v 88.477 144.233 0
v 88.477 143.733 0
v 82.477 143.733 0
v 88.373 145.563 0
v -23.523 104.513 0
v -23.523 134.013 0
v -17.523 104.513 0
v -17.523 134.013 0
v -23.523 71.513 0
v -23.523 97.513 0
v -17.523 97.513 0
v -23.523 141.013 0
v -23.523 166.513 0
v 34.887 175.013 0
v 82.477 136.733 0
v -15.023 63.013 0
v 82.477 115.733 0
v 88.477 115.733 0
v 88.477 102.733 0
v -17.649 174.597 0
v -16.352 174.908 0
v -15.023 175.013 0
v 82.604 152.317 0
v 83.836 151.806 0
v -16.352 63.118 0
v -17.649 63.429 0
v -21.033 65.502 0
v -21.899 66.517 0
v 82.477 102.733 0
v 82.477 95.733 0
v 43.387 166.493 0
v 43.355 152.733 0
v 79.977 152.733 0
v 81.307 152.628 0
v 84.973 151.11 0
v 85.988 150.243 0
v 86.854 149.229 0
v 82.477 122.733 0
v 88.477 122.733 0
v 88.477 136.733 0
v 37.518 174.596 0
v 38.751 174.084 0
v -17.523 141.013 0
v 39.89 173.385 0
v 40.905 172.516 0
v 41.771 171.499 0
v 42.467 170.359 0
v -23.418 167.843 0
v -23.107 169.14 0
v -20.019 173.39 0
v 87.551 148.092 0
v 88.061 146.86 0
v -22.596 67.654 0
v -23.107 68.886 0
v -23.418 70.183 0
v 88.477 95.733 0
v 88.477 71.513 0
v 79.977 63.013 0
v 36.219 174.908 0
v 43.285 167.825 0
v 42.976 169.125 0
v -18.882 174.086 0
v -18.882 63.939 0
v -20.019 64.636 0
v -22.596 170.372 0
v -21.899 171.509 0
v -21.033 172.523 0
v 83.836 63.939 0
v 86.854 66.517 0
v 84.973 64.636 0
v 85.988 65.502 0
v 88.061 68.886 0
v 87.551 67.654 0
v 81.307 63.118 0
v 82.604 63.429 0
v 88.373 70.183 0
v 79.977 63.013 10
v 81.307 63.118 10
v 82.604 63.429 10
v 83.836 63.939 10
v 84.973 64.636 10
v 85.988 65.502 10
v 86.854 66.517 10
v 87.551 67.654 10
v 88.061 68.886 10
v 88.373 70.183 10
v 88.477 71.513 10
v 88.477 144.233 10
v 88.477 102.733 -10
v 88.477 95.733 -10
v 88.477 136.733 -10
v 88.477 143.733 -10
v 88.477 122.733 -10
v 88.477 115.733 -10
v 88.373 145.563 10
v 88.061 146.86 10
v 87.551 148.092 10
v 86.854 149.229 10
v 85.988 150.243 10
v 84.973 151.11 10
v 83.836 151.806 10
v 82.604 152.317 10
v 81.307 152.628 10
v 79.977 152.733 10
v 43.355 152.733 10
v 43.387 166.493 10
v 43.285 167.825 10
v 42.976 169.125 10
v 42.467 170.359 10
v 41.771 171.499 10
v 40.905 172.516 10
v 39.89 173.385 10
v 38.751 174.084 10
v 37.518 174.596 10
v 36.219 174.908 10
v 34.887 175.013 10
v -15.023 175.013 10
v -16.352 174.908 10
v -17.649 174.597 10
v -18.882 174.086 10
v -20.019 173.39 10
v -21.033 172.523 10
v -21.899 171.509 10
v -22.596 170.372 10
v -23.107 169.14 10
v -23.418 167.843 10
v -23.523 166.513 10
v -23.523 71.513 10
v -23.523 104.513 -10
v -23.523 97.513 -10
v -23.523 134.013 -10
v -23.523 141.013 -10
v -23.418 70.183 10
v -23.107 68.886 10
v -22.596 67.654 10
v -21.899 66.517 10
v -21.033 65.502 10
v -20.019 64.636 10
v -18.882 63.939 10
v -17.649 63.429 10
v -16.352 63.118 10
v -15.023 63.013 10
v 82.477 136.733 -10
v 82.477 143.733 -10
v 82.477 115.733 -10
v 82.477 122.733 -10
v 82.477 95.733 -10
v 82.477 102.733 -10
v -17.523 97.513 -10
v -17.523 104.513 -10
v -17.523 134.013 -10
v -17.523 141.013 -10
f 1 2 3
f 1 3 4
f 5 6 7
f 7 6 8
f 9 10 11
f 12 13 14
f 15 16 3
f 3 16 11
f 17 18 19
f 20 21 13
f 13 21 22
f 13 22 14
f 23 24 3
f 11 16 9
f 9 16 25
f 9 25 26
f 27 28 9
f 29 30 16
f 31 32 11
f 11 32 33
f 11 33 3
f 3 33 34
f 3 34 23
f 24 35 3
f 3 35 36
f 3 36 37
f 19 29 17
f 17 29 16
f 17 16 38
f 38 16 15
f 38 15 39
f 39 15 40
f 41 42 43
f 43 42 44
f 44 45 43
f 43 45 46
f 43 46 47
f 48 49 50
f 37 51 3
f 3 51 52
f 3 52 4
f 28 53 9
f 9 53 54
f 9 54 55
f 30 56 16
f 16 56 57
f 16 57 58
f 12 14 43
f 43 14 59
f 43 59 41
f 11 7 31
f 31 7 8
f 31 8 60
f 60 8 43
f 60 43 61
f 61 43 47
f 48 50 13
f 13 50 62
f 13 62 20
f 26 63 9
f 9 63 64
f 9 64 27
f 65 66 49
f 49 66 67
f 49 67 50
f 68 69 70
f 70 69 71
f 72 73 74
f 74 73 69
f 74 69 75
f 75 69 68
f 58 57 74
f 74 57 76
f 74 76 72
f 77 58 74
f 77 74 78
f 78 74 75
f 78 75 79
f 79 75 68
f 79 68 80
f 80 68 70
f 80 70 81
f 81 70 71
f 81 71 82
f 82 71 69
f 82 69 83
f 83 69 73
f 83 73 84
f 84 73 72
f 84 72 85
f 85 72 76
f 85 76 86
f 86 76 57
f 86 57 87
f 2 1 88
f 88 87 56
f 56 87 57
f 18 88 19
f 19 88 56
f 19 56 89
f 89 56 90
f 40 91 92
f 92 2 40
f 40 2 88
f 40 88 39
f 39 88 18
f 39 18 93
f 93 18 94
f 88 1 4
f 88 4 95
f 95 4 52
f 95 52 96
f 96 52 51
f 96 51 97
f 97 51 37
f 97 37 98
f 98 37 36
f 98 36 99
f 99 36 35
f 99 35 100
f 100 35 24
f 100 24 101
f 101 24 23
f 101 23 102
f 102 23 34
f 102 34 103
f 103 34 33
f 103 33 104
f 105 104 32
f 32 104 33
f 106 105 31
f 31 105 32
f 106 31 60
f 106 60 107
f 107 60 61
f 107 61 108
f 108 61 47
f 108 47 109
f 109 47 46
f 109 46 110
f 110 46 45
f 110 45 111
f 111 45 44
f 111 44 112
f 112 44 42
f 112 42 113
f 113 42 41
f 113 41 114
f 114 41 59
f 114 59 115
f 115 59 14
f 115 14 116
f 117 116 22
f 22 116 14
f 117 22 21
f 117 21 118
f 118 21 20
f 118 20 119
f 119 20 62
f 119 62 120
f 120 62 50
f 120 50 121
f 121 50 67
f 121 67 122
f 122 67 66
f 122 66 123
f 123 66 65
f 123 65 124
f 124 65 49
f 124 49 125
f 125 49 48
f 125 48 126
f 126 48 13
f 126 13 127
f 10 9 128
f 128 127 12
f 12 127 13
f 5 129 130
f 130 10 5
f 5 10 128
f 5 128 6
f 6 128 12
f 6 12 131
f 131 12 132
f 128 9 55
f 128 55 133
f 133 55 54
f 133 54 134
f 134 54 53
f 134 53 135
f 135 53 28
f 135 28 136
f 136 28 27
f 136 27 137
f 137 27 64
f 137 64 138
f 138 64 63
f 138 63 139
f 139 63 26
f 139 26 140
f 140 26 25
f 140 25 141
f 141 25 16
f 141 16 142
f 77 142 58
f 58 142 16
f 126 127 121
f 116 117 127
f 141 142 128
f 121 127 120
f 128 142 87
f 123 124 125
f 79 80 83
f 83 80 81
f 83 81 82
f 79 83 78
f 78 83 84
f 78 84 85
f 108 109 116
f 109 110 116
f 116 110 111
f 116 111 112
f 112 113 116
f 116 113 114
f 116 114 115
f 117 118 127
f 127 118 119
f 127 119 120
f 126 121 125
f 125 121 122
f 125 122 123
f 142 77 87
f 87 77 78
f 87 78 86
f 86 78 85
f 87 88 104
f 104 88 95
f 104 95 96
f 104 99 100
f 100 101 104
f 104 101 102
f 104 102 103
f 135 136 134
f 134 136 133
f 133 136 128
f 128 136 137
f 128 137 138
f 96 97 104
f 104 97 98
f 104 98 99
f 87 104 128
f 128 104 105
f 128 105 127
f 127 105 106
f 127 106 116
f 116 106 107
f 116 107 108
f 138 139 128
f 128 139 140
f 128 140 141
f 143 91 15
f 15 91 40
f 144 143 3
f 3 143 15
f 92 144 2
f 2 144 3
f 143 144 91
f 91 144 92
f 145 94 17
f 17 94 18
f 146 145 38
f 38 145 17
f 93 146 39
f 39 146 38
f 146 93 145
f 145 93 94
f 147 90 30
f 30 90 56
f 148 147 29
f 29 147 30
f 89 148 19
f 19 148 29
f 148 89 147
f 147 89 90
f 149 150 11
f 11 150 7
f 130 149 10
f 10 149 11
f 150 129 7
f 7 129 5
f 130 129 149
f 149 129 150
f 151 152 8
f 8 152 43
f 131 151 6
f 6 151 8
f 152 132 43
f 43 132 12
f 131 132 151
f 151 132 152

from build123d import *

# Parameters (mm, degrees)
BOSS_EXTRUDE1_DEPTH = 10
SKETCH1_4_W         = 6
SKETCH1_4_H         = 7
BOSS_EXTRUDE2_DEPTH = 10


with BuildPart() as part:
    # Sketch1 → Boss-Extrude1 (new body)
    with BuildSketch(Plane.XY):
        with BuildLine():
            ThreePointArc((88.477222474, 144.232885516), (85.987630114, 150.243293156), (79.977222474, 152.732885516))
            Line((79.977222474, 152.732885516), (43.355273195, 152.732885516))
            Line((43.355273195, 152.732885516), (43.387199595, 166.493163991))
            ThreePointArc((43.387199595, 166.493163991), (40.904598686, 172.516316495), (34.887222474, 175.012885516))
            Line((34.887222474, 175.012885516), (-15.022777526, 175.012885516))
            ThreePointArc((-15.022777526, 175.012885516), (-21.033185166, 172.523293156), (-23.522777526, 166.512885516))
            Line((-23.522777526, 166.512885516), (-23.522777526, 71.512885516))
            ThreePointArc((-23.522777526, 71.512885516), (-21.033185166, 65.502477876), (-15.022777526, 63.012885516))
            Line((-15.022777526, 63.012885516), (79.977222474, 63.012885516))
            ThreePointArc((79.977222474, 63.012885516), (85.987630114, 65.502477876), (88.477222474, 71.512885516))
            Line((88.477222474, 71.512885516), (88.477222474, 144.232885516))
        make_face()
    extrude(amount=BOSS_EXTRUDE1_DEPTH)

    # Sketch1<4> → Boss-Extrude2 (add)
    with BuildSketch(Plane.XY):
        with Locations((85.477222474, 140.232885516)):
            Rectangle(SKETCH1_4_W, SKETCH1_4_H)
        with Locations((85.477222474, 119.232885516)):
            Rectangle(SKETCH1_4_W, SKETCH1_4_H)
        with Locations((85.477222474, 99.232885516)):
            Rectangle(SKETCH1_4_W, SKETCH1_4_H)
        with Locations((-20.522777526, 137.512885516)):
            Rectangle(SKETCH1_4_W, SKETCH1_4_H)
        with Locations((-20.522777526, 101.012885516)):
            Rectangle(SKETCH1_4_W, SKETCH1_4_H)
    extrude(amount=-BOSS_EXTRUDE2_DEPTH)


solid = part.part
